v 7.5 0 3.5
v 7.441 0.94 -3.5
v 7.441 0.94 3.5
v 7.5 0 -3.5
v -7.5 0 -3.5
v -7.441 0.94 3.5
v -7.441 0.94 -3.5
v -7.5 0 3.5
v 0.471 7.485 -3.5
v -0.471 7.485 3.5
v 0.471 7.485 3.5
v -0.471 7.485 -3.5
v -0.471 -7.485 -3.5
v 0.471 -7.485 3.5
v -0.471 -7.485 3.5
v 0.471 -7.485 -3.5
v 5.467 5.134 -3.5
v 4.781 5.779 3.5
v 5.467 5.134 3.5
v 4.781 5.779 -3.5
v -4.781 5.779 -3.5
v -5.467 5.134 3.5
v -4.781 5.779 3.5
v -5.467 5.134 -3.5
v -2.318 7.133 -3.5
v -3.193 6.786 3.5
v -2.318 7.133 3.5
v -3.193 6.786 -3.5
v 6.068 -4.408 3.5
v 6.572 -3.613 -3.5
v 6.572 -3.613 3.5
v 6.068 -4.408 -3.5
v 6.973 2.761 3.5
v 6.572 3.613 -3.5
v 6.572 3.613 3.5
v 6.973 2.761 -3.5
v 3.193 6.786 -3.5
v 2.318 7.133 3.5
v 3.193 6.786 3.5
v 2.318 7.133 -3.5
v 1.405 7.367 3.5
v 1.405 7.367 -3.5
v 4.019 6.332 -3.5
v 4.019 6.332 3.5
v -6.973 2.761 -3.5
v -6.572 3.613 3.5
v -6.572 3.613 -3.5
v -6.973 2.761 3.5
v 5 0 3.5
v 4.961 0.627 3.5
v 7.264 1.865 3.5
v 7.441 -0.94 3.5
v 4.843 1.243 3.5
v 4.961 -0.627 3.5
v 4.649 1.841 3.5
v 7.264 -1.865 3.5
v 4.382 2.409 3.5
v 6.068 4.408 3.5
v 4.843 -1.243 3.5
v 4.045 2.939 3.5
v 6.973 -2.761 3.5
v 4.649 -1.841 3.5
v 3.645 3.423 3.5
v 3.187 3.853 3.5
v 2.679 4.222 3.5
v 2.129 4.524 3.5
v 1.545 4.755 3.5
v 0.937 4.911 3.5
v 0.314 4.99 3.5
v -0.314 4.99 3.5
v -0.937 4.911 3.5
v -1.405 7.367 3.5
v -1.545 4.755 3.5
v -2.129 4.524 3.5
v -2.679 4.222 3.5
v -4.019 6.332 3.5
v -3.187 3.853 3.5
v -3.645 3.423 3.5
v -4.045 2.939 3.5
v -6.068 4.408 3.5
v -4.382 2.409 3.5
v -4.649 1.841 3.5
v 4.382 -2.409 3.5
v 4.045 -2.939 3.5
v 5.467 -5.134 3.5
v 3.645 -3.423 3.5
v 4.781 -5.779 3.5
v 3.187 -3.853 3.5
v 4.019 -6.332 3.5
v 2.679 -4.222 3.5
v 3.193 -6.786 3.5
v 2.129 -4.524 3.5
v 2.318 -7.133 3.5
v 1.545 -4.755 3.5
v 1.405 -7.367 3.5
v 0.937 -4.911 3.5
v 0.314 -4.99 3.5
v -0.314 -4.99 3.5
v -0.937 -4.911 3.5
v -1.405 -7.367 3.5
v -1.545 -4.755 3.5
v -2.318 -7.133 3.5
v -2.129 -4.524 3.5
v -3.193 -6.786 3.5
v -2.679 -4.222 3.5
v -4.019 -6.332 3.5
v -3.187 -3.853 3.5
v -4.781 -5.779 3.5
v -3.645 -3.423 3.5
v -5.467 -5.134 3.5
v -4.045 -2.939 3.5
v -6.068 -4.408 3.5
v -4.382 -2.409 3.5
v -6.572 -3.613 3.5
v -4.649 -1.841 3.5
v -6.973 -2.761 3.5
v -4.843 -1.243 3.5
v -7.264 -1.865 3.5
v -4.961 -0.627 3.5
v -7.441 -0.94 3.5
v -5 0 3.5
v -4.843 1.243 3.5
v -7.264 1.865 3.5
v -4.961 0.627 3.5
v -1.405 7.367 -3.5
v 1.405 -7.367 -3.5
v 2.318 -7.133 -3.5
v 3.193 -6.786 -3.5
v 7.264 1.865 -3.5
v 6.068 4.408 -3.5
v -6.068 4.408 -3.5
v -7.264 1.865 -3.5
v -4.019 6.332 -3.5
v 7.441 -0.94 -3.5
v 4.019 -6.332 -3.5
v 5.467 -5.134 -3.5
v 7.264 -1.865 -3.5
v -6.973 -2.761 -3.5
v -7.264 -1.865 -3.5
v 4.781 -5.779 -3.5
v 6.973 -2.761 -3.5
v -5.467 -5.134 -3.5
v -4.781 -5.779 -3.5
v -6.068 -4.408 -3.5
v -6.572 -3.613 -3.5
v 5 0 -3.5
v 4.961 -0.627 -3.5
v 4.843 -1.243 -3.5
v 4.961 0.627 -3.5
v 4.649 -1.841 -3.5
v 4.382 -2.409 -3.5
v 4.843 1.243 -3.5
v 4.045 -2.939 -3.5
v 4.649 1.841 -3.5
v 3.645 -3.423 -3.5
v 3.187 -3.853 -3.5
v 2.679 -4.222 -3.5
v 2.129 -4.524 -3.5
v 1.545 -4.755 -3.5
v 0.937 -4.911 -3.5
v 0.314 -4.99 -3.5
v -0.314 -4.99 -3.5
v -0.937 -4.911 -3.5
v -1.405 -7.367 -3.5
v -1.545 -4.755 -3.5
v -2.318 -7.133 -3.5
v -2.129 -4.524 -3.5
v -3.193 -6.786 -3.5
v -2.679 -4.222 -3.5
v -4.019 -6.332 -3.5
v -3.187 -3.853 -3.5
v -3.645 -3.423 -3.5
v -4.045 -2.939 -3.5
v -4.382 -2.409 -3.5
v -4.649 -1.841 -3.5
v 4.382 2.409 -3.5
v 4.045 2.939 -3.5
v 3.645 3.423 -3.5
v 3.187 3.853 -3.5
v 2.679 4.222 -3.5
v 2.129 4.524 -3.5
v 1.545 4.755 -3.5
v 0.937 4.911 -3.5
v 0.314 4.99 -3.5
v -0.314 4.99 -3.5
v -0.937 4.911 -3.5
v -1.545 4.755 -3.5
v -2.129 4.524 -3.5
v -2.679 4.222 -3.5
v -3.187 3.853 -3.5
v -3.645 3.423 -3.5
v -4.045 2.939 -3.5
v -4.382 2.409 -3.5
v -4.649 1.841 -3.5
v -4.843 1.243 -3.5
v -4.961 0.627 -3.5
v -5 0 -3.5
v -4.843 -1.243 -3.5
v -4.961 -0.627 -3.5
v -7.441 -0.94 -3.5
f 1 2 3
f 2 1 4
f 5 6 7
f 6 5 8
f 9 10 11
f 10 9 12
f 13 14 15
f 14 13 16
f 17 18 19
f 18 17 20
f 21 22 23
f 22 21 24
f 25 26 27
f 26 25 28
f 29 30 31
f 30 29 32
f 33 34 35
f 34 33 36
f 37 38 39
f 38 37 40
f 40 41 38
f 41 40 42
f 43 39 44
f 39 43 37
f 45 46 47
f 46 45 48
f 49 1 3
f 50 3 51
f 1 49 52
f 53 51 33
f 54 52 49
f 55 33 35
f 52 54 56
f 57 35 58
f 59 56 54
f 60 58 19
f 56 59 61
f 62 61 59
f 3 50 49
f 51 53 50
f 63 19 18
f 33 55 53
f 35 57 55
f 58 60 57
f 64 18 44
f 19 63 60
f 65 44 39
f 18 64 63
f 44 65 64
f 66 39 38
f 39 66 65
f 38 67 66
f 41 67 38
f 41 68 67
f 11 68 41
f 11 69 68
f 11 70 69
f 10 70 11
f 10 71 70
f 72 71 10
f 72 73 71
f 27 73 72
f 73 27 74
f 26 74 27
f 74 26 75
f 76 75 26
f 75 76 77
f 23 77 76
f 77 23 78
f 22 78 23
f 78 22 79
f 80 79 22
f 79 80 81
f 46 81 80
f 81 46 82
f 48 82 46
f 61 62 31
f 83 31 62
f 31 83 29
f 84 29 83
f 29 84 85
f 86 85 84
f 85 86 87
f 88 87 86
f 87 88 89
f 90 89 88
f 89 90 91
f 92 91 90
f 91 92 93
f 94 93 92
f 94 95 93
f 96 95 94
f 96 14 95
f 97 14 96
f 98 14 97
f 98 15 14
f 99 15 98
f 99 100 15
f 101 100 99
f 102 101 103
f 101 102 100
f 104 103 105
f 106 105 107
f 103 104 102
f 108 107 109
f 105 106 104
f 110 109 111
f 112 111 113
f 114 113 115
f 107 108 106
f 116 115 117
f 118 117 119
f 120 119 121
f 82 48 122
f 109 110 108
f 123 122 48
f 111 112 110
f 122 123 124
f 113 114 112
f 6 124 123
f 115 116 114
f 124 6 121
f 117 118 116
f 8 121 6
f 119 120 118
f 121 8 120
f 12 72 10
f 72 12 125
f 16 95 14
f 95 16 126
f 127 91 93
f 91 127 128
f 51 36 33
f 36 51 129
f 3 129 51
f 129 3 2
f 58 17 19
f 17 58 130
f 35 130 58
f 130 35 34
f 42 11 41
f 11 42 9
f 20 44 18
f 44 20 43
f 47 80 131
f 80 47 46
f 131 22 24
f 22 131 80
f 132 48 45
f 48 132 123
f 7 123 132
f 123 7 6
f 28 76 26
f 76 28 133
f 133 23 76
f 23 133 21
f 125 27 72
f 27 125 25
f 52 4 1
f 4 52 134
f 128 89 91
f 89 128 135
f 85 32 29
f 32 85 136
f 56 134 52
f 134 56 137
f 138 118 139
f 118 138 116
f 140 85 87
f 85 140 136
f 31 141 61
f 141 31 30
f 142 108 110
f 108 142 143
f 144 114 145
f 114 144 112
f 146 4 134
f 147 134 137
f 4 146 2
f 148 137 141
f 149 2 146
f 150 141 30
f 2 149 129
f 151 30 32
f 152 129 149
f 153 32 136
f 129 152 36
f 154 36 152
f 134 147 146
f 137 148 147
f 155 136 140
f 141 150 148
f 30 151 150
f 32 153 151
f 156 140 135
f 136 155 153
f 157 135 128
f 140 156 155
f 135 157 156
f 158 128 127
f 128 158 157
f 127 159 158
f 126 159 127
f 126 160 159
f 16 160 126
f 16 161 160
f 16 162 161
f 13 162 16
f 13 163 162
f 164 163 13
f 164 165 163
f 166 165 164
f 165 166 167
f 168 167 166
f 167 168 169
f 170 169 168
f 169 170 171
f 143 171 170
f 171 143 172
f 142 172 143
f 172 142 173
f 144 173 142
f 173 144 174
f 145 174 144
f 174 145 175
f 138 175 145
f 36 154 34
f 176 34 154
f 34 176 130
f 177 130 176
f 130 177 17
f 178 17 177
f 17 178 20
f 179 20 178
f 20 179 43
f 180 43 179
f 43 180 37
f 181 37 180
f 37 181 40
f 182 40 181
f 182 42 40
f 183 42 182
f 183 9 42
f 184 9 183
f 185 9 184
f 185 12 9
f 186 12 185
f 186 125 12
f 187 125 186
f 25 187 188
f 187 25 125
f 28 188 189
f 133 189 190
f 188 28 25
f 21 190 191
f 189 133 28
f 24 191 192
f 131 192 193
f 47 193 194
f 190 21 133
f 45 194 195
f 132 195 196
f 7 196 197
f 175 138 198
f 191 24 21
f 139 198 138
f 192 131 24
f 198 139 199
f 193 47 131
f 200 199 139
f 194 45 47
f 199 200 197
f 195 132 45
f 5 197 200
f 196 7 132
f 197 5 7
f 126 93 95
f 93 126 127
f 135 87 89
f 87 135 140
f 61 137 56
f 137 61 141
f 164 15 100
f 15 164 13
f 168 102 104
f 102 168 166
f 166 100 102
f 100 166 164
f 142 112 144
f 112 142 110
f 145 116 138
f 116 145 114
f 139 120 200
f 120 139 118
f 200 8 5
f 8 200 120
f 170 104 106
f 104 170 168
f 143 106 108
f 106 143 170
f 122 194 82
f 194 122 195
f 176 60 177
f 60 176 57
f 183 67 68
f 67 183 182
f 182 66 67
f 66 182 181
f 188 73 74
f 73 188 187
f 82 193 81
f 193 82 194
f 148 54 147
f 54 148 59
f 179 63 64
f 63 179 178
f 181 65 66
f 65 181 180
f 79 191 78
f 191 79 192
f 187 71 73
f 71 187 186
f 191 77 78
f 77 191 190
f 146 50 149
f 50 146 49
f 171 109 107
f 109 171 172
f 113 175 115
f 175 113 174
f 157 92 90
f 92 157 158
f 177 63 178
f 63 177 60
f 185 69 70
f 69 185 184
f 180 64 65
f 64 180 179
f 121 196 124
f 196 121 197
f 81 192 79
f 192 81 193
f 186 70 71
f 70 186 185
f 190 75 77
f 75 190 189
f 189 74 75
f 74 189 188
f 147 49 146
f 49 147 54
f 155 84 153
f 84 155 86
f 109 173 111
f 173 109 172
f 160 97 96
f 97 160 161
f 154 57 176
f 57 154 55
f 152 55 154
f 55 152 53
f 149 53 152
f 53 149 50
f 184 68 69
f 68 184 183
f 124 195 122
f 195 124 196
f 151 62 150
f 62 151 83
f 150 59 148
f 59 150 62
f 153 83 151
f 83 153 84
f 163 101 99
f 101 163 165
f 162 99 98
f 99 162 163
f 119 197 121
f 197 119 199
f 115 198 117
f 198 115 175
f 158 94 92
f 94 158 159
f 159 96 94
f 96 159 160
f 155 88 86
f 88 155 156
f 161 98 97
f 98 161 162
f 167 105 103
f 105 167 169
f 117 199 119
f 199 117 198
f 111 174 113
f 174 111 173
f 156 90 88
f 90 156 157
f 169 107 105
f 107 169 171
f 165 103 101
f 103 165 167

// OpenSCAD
$fn = 50;


difference() {
	union() {
		translate(v = [0, 0, -3.5000000000]) {
			cylinder(h = 7, r = 7.5000000000);
		}
	}
	union() {
		translate(v = [0, 0, -100.0000000000]) {
			cylinder(h = 200, r = 5);
		}
	}
}
